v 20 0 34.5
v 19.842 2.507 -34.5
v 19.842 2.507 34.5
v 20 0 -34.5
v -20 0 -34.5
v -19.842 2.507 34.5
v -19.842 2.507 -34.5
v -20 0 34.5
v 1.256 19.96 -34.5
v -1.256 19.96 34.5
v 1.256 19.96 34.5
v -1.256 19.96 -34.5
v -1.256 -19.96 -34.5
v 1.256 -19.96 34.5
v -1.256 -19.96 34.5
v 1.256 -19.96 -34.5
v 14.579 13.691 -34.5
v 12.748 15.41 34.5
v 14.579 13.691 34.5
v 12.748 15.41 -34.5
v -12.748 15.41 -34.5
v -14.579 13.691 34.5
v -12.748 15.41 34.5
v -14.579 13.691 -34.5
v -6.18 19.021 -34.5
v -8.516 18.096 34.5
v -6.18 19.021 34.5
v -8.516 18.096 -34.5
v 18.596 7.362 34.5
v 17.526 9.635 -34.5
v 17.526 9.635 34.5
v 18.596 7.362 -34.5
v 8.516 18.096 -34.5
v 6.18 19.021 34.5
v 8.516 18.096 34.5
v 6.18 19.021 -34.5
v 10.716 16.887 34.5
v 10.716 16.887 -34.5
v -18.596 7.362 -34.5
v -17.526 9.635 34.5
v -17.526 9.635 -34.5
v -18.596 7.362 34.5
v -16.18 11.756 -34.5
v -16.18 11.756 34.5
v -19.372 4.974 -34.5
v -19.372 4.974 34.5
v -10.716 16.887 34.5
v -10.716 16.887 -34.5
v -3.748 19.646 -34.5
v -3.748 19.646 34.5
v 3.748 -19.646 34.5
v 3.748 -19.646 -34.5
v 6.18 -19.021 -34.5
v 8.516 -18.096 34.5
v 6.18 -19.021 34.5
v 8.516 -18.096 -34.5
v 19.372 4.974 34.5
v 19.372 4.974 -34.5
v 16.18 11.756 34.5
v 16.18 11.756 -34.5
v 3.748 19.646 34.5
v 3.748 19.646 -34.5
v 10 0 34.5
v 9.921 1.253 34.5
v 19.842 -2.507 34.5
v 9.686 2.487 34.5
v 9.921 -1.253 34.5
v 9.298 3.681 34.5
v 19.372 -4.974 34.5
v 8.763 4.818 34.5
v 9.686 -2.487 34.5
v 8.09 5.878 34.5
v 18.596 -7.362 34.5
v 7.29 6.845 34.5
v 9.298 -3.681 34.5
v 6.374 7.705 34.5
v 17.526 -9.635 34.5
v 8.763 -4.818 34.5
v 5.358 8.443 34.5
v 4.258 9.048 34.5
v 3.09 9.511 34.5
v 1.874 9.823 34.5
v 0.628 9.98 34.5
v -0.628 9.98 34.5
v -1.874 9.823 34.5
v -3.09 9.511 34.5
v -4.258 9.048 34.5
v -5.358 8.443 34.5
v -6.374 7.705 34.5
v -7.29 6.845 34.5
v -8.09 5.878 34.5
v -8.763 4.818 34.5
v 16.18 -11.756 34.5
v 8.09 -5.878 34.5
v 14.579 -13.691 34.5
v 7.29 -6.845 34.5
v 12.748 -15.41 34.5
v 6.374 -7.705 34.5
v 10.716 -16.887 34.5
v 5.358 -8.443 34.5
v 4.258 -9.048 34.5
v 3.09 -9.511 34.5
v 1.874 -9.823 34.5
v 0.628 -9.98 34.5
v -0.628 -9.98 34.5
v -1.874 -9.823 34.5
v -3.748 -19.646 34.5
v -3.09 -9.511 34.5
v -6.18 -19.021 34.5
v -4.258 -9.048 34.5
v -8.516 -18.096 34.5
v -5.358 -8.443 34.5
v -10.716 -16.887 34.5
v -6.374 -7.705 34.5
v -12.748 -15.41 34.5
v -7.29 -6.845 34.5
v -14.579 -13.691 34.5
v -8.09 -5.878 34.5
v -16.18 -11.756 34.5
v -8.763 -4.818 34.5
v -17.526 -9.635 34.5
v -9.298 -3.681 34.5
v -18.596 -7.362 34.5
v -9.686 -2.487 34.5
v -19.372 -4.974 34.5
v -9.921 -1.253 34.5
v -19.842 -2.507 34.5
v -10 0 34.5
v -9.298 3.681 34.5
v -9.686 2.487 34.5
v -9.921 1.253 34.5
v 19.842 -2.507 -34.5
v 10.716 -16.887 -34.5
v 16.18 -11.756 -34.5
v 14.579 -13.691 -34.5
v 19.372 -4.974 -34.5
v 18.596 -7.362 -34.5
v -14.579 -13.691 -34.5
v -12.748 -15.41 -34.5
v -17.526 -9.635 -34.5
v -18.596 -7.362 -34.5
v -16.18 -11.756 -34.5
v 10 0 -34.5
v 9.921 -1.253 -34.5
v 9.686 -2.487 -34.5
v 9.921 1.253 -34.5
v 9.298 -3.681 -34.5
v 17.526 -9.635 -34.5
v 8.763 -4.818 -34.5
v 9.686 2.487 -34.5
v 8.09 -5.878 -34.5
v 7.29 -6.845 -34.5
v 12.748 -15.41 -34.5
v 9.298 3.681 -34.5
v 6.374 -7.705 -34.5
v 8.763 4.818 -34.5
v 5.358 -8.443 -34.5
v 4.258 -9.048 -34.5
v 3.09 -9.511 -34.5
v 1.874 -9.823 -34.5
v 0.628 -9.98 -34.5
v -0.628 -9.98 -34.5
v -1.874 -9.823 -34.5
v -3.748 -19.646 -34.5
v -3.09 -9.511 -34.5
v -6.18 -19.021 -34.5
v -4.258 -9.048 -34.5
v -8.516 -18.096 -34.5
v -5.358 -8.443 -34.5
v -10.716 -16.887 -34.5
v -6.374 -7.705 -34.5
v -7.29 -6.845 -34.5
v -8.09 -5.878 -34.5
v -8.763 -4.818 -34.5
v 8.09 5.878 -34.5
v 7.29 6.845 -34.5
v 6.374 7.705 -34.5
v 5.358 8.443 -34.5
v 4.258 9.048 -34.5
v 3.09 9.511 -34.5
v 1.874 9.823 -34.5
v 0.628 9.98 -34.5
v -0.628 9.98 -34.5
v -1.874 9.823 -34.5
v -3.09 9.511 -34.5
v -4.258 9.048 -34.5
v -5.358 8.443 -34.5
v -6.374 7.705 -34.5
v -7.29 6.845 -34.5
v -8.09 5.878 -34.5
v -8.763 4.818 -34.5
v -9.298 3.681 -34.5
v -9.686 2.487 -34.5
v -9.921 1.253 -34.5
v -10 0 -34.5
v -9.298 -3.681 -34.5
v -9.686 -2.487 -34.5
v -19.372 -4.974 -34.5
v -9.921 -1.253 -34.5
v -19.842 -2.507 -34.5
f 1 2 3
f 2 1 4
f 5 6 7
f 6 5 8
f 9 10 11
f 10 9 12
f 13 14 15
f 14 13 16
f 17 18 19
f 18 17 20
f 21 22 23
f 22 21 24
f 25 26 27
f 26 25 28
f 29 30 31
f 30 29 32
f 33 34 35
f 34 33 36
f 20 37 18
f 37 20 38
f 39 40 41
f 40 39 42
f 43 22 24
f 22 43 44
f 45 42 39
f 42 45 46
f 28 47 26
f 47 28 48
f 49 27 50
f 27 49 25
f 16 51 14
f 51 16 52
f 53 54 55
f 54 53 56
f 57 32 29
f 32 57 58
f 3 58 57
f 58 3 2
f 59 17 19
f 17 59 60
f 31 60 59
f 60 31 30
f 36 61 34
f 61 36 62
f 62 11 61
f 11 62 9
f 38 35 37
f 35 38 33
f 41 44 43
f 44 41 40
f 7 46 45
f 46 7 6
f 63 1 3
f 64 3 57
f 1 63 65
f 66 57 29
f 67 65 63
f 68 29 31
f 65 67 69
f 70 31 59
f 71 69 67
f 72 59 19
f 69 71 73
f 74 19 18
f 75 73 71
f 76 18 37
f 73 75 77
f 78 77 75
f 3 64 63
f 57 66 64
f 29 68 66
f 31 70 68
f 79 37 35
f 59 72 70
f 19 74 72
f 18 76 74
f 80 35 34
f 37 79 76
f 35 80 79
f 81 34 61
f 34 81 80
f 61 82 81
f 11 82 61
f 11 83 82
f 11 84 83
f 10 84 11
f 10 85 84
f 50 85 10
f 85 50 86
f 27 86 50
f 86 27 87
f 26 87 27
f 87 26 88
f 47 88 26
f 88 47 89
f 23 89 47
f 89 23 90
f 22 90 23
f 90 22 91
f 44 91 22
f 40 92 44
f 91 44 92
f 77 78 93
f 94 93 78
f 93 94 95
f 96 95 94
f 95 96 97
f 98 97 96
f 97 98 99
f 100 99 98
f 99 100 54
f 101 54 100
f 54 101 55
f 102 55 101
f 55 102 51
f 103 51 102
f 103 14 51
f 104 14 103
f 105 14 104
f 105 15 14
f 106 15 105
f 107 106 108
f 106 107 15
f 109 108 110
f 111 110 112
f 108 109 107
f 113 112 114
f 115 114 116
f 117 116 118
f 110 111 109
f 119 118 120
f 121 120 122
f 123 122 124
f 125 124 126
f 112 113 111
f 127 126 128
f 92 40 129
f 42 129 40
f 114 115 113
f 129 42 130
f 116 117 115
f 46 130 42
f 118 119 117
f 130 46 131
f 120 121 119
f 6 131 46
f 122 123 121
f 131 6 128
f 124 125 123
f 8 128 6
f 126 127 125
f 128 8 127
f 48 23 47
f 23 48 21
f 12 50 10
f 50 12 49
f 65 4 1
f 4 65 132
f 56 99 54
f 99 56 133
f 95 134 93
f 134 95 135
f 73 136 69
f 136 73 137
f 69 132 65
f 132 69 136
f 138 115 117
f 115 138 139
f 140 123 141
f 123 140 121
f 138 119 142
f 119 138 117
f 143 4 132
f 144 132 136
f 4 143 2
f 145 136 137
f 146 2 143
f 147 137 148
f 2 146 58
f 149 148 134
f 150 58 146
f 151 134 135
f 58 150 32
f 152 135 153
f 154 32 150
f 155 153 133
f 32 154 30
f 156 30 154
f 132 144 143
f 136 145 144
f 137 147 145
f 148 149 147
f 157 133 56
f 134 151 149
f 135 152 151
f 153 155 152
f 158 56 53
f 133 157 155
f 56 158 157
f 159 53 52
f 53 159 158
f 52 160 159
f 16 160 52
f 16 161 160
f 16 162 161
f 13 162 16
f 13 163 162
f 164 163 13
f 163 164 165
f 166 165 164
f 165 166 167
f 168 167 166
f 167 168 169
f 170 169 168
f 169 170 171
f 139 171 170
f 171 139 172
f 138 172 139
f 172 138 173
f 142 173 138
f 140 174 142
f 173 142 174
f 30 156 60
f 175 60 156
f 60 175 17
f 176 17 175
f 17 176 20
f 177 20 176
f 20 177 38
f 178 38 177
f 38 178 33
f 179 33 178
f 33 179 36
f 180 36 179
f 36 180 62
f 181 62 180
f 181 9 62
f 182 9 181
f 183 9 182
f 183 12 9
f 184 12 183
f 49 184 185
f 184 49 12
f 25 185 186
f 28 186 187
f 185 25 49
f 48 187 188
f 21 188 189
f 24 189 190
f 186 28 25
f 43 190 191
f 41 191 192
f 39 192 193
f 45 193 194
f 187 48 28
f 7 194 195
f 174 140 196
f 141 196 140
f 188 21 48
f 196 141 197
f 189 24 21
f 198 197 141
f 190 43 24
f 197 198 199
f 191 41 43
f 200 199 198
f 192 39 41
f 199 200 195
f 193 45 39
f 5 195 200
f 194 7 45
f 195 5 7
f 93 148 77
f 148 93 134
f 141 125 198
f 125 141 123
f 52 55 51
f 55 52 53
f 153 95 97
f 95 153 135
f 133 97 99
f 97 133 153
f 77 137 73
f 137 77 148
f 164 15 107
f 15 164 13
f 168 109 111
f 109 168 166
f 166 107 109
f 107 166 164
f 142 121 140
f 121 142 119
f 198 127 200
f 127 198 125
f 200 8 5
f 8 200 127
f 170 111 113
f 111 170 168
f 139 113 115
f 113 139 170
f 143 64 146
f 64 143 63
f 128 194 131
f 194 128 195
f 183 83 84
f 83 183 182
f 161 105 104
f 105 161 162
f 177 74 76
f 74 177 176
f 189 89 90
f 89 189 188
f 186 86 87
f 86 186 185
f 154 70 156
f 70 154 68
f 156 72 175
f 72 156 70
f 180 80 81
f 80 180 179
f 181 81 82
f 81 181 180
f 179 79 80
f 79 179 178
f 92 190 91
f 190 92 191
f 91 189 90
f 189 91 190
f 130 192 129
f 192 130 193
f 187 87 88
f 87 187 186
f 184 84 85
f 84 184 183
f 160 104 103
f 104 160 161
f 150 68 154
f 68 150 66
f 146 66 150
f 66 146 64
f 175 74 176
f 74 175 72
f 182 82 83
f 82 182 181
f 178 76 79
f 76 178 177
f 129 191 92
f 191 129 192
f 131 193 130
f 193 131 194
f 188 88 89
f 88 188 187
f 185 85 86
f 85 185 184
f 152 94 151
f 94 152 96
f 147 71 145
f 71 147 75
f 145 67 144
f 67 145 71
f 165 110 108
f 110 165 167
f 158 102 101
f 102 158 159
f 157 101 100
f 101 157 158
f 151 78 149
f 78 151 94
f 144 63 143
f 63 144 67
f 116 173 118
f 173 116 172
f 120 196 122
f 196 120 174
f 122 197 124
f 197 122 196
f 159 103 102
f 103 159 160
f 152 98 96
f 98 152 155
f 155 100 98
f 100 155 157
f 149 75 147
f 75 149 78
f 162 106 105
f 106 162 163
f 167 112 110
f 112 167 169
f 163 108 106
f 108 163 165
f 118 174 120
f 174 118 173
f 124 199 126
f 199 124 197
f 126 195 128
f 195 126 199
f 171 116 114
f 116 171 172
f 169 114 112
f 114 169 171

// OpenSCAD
$fn = 50;


difference() {
	union() {
		translate(v = [0, 0, -34.5000000000]) {
			cylinder(h = 69, r = 20.0000000000);
		}
	}
	union() {
		translate(v = [0, 0, -100.0000000000]) {
			cylinder(h = 200, r = 10);
		}
	}
}
